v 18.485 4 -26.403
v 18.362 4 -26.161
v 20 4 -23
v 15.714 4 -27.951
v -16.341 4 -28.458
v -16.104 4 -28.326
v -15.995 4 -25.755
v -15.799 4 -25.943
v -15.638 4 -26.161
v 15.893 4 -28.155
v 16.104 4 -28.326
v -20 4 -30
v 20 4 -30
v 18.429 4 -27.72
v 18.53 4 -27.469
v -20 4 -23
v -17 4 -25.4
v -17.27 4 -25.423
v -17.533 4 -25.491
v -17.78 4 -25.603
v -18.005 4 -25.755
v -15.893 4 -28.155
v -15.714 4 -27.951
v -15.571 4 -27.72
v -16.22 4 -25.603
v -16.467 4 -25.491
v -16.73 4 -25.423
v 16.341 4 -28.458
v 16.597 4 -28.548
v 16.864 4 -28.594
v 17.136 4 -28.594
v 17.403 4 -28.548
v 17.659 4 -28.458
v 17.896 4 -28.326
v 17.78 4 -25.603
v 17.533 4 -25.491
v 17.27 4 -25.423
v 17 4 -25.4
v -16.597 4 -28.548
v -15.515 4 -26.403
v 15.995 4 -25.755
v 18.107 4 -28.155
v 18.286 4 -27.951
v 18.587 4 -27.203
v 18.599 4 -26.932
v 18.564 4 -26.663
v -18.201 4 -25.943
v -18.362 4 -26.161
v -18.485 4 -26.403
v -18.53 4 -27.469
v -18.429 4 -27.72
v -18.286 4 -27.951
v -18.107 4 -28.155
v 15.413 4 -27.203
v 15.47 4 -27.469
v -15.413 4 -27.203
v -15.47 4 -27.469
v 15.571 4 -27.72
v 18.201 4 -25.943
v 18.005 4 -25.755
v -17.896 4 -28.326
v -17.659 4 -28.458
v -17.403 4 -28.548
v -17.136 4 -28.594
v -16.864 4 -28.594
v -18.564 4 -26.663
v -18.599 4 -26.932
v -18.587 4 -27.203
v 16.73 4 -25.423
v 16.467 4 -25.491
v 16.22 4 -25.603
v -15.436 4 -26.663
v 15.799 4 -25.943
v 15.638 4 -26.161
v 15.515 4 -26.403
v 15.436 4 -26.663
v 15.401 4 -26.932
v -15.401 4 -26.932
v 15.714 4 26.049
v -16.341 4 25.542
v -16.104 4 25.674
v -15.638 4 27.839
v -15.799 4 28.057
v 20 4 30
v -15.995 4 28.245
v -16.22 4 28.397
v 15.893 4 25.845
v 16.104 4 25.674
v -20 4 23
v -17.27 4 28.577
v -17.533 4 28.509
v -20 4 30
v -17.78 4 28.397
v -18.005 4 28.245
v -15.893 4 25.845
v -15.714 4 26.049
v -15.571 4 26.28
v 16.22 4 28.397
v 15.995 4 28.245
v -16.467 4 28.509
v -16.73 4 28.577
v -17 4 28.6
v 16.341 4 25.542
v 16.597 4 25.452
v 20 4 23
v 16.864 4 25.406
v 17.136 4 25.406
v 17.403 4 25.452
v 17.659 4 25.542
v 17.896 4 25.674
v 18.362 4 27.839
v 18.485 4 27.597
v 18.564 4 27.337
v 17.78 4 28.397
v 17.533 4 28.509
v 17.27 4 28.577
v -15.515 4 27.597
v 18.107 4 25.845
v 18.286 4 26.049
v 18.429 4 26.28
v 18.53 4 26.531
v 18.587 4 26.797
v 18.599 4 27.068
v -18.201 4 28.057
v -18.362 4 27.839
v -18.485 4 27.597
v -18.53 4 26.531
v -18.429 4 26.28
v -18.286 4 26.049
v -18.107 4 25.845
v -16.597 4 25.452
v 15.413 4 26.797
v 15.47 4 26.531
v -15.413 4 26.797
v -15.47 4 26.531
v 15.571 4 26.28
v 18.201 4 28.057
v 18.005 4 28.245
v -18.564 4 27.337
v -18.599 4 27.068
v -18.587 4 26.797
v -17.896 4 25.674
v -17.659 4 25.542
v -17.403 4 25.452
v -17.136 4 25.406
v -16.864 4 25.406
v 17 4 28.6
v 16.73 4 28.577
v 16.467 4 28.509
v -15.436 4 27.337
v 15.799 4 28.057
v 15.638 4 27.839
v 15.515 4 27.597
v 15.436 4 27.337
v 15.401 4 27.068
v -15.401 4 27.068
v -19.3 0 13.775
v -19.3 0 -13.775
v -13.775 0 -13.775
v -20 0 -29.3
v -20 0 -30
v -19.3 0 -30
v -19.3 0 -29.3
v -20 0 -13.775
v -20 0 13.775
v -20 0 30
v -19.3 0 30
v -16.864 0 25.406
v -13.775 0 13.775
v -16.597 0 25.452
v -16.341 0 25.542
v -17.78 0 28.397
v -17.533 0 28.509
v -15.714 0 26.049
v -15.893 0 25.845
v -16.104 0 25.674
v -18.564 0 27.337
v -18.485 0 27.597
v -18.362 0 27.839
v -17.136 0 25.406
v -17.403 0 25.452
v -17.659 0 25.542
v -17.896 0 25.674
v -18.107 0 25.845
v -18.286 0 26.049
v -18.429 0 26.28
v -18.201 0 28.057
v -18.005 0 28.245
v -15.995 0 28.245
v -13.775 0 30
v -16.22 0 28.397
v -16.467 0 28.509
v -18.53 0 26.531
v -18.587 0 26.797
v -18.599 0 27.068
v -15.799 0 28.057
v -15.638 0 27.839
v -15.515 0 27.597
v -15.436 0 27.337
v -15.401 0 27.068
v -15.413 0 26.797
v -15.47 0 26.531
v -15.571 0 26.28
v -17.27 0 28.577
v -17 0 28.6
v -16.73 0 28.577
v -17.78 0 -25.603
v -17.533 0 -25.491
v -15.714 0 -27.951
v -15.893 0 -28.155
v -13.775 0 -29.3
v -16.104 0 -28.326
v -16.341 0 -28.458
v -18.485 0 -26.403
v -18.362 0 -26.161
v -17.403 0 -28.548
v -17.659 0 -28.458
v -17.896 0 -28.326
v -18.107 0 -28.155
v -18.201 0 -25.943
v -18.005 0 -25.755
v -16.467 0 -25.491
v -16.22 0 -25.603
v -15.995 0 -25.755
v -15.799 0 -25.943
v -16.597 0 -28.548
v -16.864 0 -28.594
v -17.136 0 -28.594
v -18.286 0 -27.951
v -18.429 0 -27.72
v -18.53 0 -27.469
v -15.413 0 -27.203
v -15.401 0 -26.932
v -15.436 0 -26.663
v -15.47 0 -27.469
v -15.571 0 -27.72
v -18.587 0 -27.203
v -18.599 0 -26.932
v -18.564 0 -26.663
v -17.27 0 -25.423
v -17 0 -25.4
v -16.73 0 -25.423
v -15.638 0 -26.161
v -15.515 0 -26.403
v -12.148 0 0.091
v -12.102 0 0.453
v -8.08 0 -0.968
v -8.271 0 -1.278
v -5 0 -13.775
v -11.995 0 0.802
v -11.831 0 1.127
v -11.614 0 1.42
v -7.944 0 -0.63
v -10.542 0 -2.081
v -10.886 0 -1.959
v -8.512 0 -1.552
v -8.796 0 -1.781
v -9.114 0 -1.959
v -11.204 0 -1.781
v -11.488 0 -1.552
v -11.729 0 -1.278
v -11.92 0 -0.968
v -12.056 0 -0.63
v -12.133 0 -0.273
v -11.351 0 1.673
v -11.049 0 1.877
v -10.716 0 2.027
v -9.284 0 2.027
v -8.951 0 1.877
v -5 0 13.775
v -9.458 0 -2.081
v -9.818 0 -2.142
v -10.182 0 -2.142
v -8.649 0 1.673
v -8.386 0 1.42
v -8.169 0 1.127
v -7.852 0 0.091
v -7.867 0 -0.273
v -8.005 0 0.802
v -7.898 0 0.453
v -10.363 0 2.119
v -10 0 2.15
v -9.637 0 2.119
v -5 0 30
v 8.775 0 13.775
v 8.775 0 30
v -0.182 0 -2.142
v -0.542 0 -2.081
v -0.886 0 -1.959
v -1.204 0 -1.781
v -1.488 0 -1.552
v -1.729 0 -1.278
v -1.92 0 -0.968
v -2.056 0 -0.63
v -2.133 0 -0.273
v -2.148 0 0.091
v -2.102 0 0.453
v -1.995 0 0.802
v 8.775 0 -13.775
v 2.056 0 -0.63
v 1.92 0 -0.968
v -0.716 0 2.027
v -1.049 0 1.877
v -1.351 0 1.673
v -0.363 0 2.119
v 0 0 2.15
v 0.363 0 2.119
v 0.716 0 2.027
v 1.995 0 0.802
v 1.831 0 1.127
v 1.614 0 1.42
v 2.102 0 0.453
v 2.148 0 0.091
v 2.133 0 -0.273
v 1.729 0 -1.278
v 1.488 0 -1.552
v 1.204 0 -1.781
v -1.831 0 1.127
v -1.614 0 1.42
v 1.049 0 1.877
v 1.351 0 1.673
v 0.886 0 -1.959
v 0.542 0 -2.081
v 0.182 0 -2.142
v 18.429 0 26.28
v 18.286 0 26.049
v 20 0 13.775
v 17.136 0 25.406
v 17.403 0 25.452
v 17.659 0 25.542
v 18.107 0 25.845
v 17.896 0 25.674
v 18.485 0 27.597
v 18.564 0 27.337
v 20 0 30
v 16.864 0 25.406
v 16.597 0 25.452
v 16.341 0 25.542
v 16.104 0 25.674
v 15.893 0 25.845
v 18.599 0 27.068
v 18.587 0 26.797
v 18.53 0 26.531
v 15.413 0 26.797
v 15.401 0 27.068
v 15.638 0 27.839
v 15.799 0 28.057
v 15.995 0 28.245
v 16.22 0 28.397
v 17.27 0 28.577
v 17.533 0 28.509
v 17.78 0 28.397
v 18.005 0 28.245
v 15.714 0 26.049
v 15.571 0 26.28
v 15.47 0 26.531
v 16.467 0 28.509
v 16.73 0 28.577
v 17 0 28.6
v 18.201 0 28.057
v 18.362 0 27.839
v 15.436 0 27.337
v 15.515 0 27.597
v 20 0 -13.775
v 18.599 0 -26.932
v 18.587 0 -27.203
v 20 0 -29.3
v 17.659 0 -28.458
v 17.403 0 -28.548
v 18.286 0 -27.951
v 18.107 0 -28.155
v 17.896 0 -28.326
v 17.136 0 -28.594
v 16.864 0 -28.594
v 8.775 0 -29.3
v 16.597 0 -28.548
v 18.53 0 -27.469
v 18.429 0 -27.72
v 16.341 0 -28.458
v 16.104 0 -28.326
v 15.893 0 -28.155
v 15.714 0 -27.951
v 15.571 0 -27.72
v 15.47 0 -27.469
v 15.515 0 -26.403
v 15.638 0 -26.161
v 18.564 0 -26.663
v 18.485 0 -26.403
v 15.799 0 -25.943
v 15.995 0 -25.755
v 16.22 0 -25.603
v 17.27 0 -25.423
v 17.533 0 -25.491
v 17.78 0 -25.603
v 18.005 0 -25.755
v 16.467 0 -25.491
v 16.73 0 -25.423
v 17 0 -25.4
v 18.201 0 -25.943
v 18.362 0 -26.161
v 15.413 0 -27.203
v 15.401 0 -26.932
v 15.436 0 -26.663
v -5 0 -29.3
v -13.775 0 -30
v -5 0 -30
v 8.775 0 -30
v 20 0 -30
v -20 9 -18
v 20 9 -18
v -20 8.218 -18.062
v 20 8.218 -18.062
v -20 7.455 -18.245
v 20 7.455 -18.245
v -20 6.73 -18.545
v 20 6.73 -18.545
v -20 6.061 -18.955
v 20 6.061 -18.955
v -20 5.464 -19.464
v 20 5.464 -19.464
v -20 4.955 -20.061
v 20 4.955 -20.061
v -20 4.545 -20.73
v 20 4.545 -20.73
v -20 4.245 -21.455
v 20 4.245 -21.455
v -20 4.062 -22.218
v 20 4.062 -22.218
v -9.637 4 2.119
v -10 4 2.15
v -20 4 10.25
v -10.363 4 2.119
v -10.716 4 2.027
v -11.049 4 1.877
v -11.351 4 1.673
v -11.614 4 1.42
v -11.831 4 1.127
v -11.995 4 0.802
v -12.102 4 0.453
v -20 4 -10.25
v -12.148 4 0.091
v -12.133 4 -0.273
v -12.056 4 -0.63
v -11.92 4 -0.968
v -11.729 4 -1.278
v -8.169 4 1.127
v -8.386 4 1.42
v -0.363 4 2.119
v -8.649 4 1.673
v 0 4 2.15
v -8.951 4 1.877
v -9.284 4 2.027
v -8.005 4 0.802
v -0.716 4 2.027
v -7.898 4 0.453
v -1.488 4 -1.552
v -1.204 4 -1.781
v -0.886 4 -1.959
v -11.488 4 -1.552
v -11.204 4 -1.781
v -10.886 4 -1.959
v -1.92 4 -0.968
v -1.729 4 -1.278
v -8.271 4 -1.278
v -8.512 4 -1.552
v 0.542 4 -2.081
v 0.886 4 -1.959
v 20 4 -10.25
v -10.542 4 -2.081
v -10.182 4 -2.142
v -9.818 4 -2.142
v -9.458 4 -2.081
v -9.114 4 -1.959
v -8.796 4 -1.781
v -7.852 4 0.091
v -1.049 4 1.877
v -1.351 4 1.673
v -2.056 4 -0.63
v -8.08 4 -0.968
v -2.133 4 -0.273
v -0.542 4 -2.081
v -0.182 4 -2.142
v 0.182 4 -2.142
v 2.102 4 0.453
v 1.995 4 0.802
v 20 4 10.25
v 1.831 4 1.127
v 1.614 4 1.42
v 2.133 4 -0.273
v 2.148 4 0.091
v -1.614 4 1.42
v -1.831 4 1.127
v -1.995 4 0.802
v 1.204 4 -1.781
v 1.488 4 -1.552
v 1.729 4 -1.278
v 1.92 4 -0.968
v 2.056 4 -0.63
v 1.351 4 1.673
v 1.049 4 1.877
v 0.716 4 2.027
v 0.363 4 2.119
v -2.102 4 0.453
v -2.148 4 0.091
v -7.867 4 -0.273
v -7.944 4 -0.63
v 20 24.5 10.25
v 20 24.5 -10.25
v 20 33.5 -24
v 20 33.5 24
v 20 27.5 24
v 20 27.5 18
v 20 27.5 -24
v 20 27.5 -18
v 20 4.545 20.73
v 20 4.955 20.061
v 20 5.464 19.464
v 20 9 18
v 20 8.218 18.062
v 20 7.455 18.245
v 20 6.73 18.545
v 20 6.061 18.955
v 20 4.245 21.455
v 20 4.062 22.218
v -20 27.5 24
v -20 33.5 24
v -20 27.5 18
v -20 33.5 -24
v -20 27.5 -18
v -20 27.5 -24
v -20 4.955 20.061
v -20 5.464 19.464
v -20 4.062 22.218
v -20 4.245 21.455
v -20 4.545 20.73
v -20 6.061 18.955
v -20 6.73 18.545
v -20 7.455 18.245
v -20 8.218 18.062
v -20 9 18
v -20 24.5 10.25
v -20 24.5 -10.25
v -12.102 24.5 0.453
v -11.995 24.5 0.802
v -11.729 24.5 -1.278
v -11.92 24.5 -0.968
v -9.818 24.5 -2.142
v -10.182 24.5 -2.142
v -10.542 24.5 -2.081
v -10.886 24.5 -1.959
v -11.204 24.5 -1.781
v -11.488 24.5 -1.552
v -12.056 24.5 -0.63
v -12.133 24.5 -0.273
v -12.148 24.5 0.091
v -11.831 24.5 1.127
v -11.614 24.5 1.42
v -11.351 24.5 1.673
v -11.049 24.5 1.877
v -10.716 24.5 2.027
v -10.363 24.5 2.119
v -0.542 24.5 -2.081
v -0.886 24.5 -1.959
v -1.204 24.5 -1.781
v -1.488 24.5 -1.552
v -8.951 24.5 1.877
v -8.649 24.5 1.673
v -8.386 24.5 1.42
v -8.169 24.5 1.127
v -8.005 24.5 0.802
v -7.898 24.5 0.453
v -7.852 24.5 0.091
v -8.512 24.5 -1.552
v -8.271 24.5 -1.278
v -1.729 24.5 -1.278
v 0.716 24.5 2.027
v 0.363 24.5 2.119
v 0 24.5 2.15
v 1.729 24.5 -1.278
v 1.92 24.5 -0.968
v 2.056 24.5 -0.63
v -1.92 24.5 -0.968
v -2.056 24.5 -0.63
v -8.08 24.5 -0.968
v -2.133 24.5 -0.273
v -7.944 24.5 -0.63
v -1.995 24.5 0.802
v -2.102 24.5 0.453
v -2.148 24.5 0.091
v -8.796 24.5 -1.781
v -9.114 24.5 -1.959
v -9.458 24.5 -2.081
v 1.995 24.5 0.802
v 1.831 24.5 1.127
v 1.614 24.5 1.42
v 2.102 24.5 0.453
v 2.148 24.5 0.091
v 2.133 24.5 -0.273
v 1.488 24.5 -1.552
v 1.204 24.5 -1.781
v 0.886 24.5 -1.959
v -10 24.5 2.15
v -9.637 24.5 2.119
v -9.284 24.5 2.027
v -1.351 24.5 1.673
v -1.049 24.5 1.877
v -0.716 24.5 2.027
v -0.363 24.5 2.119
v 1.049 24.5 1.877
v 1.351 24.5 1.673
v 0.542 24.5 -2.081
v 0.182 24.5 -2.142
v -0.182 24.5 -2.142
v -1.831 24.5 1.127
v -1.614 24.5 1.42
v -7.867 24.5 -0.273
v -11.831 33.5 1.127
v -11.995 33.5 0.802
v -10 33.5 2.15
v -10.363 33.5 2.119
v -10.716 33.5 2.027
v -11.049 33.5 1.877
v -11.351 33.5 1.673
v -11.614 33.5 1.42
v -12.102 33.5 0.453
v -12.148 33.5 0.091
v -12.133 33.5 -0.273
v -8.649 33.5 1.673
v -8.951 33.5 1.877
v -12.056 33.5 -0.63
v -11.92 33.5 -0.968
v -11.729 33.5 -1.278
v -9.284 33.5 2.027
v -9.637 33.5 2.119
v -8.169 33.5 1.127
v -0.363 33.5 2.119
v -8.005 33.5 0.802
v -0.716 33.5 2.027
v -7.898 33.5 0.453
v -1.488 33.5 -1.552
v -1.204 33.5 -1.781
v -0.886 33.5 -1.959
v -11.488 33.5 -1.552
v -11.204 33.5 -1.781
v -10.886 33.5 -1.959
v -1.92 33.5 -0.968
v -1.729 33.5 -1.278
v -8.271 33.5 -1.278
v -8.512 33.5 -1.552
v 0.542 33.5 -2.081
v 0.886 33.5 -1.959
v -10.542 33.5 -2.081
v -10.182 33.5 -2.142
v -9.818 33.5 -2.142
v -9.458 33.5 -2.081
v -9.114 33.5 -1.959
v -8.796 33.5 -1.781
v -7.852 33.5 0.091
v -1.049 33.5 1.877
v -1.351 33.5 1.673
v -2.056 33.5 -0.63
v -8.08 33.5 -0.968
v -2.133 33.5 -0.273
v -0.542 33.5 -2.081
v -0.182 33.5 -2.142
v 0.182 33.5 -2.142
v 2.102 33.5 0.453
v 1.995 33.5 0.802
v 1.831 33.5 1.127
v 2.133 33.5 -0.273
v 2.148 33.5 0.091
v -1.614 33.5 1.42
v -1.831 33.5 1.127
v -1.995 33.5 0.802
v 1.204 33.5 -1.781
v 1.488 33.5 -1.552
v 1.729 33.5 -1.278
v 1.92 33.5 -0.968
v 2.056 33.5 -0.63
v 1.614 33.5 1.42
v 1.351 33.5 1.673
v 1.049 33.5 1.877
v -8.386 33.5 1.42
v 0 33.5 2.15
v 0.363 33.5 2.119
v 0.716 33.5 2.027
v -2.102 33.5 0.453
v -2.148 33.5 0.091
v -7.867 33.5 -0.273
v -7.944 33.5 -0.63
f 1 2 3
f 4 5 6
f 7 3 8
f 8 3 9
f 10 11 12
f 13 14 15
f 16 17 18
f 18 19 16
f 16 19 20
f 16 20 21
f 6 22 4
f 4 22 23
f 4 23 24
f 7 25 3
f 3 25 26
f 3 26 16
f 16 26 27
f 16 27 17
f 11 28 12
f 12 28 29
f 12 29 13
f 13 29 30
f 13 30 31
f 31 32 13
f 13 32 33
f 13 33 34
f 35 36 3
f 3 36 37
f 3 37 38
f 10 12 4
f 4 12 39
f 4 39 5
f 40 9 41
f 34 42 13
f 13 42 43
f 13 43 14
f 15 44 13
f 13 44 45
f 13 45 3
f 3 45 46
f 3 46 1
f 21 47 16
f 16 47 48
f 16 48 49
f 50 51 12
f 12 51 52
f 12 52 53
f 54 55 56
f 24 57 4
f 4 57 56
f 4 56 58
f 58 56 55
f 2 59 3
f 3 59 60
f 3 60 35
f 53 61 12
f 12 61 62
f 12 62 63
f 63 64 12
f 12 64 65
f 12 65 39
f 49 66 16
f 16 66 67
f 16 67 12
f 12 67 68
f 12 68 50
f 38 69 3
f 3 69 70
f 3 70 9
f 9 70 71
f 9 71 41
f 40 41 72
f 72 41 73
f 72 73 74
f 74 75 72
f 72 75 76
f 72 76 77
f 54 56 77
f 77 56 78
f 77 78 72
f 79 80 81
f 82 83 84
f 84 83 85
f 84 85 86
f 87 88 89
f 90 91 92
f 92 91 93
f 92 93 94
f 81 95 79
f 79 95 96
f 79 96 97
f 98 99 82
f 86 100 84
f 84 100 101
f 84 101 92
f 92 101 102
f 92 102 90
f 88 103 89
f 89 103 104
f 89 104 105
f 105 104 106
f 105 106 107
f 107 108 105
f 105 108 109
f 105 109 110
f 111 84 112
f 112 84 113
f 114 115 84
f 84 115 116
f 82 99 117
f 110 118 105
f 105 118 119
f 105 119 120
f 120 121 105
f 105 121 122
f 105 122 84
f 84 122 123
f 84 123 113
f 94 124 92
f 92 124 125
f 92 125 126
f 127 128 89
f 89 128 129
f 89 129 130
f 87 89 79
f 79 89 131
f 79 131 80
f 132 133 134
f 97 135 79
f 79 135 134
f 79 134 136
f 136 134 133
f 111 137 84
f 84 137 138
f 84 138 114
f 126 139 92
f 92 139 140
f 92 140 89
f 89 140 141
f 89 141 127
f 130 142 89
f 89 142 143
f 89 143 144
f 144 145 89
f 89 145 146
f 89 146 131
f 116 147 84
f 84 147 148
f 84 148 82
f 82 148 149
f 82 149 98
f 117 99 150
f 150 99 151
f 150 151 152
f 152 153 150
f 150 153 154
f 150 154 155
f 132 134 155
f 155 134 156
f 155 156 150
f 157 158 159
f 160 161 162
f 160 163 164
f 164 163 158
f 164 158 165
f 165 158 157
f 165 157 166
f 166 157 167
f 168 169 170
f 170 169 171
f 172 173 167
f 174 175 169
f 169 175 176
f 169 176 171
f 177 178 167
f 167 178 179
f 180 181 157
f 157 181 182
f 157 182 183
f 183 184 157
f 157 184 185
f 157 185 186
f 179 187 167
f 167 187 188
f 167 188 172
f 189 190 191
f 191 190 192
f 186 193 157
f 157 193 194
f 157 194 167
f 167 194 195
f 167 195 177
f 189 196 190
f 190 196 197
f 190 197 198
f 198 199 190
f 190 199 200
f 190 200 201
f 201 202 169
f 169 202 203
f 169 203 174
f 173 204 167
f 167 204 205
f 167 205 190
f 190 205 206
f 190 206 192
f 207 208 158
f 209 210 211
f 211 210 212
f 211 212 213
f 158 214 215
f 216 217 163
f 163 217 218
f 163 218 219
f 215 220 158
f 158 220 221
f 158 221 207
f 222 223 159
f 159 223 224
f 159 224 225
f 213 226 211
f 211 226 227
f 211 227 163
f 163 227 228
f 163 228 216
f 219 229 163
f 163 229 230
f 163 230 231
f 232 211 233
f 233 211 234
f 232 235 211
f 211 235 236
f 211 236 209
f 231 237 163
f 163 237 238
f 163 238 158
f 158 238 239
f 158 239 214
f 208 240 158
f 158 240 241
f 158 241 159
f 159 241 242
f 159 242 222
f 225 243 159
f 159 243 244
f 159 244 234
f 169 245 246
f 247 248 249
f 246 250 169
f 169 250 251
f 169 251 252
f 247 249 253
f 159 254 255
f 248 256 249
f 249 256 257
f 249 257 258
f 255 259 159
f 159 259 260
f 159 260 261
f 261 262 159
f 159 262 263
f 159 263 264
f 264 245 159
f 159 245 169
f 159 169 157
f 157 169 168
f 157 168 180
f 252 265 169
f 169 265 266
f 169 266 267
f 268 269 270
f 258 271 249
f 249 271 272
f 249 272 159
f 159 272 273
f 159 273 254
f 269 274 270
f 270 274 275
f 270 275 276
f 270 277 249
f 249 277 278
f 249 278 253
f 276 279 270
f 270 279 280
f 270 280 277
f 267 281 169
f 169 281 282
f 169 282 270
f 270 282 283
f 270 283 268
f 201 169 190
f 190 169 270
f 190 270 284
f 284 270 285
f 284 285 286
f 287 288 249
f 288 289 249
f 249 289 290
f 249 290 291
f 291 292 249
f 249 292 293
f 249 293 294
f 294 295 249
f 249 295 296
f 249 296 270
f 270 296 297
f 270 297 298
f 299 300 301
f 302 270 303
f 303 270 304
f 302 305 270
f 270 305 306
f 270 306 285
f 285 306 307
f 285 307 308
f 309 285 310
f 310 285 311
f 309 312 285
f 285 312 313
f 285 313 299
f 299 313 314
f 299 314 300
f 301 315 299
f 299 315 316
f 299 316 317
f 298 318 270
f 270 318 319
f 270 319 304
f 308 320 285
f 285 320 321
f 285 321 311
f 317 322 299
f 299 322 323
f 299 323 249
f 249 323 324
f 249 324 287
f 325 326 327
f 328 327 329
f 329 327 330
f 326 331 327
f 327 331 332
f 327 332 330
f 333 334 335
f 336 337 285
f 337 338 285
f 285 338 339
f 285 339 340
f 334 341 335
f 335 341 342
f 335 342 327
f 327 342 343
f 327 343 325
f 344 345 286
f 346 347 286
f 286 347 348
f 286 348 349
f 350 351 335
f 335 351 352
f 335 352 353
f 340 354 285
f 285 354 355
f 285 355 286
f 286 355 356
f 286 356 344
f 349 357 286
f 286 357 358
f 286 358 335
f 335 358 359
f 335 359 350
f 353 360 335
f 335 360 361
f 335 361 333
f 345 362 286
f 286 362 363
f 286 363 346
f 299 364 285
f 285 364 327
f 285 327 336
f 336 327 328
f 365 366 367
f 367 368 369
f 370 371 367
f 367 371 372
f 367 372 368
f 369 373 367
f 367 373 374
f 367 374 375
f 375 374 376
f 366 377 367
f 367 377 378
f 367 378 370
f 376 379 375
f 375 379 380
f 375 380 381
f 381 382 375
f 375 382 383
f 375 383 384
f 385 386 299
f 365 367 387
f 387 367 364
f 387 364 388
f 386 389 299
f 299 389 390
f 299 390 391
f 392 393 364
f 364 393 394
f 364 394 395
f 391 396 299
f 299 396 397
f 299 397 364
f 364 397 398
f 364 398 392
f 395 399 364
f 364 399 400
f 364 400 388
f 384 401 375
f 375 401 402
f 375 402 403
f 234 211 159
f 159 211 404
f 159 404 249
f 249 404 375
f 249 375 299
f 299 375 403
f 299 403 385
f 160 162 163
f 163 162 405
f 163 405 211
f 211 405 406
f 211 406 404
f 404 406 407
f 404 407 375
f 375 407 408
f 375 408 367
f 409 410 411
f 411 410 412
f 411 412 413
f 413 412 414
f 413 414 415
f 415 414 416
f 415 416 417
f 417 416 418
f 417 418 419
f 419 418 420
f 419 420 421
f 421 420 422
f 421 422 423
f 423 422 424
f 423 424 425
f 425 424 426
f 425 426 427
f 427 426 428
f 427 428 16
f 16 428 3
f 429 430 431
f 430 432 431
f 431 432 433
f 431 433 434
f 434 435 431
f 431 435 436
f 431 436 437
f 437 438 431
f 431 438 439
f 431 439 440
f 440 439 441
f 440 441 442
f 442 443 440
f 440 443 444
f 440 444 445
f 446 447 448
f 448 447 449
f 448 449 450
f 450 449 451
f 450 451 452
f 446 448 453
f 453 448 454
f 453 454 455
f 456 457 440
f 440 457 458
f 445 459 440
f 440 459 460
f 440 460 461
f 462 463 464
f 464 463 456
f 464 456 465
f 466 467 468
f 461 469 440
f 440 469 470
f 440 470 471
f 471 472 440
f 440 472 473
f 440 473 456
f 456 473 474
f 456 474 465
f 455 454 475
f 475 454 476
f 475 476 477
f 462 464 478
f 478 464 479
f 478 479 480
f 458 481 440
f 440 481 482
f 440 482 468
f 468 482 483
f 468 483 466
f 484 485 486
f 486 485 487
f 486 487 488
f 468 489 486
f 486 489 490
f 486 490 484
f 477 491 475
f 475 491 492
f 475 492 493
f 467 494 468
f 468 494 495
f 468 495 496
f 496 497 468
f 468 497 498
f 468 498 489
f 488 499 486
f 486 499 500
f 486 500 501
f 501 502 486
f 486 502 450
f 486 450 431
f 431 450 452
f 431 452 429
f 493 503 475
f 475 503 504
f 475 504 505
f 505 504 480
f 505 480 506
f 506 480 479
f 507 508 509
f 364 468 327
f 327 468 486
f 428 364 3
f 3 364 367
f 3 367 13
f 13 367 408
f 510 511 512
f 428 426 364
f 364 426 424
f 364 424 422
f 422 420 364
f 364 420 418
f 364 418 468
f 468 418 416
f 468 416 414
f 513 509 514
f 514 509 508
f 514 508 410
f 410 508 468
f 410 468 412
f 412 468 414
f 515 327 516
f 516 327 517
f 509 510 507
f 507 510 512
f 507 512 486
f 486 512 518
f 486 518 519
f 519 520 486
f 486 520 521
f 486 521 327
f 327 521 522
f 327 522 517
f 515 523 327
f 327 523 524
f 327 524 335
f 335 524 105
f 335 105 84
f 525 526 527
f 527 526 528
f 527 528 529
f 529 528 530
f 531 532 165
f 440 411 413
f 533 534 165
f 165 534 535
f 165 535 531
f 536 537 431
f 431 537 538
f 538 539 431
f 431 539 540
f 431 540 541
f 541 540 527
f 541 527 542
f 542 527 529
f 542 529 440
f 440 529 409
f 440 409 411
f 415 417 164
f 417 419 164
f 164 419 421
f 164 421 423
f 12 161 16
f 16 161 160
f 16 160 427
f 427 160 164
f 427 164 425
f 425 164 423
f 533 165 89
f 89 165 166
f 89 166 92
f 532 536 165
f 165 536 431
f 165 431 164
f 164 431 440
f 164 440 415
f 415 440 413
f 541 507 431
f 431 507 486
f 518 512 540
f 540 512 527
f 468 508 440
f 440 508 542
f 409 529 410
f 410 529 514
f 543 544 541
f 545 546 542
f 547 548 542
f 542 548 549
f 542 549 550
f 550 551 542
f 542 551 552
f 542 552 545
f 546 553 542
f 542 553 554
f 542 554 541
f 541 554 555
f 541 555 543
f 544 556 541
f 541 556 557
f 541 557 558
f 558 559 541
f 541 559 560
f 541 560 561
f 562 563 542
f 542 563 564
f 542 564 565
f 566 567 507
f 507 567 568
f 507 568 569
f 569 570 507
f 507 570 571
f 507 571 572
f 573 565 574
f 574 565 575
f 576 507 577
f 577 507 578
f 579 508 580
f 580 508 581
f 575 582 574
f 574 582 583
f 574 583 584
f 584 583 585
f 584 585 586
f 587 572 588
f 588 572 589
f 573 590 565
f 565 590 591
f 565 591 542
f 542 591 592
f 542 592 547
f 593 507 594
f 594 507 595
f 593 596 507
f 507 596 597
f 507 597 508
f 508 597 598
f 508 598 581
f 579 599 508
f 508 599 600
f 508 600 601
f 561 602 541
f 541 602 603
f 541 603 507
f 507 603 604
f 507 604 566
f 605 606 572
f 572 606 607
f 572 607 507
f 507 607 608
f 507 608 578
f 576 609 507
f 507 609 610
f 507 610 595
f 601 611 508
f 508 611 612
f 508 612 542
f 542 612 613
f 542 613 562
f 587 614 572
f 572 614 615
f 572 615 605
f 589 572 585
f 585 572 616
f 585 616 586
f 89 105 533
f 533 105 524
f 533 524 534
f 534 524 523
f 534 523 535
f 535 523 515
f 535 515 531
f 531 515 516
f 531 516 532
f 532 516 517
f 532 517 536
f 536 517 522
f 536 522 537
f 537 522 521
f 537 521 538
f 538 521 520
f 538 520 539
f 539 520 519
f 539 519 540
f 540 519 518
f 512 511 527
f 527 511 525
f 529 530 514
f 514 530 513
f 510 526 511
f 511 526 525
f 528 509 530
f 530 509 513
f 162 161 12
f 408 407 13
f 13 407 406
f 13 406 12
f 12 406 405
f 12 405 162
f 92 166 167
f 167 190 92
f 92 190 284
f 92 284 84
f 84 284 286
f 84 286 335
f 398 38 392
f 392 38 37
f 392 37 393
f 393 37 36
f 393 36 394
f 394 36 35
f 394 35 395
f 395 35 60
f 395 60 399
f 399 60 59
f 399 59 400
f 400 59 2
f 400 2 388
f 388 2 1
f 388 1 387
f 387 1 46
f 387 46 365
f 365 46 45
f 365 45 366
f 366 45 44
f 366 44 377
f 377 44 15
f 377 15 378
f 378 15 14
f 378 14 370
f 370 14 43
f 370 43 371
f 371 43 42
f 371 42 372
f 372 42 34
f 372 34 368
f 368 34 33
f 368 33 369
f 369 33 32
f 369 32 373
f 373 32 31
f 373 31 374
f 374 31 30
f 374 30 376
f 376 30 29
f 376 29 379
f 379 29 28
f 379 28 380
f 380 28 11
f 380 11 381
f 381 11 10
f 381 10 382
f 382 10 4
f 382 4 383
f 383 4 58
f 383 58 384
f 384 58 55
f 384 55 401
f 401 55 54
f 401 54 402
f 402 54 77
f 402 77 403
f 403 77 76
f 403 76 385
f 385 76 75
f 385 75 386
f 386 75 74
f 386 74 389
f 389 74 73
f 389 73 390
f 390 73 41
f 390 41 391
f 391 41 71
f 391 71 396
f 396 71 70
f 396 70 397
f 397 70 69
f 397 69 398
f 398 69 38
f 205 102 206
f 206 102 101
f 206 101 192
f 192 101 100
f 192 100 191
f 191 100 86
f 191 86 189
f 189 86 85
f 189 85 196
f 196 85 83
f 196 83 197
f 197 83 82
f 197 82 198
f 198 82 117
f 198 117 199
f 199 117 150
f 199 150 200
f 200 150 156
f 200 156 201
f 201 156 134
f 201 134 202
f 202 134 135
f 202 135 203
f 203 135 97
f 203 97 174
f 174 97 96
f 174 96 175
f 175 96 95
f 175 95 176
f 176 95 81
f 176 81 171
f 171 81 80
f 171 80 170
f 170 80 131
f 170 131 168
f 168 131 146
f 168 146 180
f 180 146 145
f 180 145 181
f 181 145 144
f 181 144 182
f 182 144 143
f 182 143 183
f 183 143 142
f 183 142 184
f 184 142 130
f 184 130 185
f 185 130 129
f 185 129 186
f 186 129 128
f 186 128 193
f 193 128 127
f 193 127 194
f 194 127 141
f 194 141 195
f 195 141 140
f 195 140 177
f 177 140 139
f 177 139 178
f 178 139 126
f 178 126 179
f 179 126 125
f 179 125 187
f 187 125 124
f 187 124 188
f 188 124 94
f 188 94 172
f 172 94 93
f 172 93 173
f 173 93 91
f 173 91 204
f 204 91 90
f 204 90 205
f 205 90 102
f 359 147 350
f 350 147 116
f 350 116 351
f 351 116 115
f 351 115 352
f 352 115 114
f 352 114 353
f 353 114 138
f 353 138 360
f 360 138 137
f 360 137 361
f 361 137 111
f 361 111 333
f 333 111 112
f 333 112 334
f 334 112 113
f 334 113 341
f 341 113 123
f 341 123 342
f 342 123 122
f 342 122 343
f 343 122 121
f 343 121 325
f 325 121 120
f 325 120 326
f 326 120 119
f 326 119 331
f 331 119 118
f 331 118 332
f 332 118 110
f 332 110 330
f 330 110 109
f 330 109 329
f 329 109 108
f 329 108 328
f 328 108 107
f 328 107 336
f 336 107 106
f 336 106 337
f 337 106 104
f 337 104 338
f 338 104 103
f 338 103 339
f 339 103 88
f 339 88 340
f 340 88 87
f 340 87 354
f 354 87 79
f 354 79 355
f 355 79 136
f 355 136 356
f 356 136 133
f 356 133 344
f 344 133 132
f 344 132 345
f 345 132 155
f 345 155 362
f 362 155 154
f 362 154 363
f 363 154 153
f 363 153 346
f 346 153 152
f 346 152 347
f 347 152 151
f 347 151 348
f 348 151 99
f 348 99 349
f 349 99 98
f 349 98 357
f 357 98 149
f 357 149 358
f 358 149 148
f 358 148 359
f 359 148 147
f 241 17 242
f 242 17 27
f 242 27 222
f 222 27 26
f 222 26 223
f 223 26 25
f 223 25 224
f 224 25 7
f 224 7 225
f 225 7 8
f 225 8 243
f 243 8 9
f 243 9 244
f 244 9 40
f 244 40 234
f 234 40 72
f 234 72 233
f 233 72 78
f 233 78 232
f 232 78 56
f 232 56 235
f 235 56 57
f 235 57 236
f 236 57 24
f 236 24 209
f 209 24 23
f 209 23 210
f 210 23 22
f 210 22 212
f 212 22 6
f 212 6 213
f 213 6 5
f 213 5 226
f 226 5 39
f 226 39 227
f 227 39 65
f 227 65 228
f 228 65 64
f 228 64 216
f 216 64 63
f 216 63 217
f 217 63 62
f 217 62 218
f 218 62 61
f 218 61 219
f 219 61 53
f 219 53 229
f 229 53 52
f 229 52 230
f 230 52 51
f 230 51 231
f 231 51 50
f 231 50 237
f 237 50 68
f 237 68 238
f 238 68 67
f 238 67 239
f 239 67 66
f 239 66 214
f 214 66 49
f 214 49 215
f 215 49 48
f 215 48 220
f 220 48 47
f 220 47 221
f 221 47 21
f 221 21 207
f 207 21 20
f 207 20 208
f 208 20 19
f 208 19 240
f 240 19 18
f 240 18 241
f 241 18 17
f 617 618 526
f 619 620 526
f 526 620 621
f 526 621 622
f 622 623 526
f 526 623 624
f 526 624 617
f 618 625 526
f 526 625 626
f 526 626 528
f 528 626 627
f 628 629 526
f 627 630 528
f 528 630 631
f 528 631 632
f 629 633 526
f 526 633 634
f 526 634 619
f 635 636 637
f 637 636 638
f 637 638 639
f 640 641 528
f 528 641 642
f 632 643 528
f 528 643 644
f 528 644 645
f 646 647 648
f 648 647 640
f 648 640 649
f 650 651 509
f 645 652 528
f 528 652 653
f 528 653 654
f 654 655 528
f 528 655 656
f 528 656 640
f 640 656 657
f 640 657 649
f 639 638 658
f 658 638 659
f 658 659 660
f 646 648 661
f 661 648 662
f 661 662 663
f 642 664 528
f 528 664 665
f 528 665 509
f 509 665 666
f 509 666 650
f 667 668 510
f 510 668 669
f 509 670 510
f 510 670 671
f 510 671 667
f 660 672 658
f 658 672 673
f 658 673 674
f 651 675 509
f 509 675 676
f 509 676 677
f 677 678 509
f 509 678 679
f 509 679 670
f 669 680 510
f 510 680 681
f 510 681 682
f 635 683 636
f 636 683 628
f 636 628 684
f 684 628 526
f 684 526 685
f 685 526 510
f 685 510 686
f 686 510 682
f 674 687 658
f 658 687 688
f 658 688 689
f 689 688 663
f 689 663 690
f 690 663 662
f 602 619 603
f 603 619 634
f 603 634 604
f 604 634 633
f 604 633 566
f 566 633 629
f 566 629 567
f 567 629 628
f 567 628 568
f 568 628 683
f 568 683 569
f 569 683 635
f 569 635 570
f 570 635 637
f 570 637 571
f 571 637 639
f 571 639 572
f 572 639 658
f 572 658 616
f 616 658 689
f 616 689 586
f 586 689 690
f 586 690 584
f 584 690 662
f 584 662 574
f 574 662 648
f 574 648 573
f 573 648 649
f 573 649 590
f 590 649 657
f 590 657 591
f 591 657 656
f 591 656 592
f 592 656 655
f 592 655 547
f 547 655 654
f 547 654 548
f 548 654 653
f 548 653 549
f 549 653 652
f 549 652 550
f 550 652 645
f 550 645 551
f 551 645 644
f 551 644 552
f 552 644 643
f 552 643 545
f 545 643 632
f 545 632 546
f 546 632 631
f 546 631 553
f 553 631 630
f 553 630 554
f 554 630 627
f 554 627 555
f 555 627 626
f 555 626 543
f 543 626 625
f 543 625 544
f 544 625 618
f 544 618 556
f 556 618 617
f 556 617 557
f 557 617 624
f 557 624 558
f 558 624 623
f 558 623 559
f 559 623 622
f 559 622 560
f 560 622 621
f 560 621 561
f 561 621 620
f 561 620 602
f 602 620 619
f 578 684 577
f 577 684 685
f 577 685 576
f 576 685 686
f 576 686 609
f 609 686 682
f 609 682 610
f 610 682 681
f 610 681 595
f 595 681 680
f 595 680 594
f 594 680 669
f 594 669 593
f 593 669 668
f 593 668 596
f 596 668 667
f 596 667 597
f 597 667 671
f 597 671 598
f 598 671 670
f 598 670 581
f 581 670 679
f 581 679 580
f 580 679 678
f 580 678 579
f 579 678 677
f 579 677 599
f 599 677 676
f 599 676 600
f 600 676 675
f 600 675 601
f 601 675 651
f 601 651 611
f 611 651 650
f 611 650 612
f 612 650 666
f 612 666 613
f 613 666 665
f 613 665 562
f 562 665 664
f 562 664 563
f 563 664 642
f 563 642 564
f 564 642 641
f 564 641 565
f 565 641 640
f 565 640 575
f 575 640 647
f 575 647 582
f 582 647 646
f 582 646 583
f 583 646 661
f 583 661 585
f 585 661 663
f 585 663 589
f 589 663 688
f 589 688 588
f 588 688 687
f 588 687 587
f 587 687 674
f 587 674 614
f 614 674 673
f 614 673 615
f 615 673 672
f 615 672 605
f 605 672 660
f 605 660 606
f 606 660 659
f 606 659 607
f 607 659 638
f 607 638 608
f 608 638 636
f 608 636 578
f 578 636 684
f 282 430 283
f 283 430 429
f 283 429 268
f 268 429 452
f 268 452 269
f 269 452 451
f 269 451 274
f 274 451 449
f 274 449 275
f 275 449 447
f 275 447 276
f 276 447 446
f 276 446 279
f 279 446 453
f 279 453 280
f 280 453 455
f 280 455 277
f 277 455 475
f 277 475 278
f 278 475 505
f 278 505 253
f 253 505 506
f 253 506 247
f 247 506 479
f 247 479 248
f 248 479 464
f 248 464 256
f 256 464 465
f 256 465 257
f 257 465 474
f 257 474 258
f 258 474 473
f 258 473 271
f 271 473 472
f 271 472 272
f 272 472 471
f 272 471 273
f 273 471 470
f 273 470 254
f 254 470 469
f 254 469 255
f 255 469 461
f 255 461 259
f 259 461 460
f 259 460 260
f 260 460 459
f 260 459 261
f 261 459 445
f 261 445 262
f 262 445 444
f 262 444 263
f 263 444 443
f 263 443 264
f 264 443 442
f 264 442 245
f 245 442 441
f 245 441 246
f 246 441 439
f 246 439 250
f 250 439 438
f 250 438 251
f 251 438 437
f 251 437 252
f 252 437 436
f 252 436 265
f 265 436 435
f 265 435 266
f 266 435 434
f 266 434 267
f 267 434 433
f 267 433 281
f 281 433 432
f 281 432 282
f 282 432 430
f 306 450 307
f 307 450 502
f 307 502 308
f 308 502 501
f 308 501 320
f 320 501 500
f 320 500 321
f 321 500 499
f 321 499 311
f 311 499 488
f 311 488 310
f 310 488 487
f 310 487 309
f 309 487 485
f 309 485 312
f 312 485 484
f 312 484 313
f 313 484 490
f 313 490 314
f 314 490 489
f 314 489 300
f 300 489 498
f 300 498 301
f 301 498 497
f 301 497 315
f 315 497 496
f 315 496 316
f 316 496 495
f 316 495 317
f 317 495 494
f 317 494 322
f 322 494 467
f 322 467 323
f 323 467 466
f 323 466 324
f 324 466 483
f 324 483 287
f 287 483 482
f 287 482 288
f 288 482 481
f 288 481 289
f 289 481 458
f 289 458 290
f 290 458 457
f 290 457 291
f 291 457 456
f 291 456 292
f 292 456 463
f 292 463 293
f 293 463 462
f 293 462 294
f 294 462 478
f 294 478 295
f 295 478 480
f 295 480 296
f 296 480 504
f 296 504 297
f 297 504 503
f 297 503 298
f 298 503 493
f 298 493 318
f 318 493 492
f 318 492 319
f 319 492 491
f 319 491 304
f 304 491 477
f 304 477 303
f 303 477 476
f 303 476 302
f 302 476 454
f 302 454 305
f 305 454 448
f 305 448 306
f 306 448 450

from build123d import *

# Parameters (mm, degrees)
SKETCH_1_W          = 40
SKETCH_1_H          = 48
SKETCH_1_R          = 1.75
EXTRUDE_1_DEPTH     = 4
SKETCH_2_W          = 40
SKETCH_2_H          = 7.75
EXTRUDE_5_DEPTH     = 20.5
SKETCH_4_W          = 40
SKETCH_4_H          = 36
EXTRUDE_6_DEPTH     = 3
FILLET_4_R          = 5
FILLET_11_R         = 5
SKETCH_8_W          = 40
SKETCH_8_H          = 48
EXTRUDE_8_DEPTH     = 4
SKETCH_9_W          = 40
SKETCH_9_H          = 60
EXTRUDE_9_DEPTH     = 4
SKETCH_10_R         = 1.6
CUT_EXTRUDE_1_DEPTH = 46.345892868
SKETCH_12_W         = 40
SKETCH_12_H         = 48
EXTRUDE_11_DEPTH    = 2
SKETCH_13_R         = 2.15
CUT_EXTRUDE_2_DEPTH = 50.216359069


with BuildPart() as part:
    # 草图1 → 凸台-拉伸1 (new body)
    with BuildSketch(Plane(origin=(0, 0, 0), x_dir=(1, 0, 0), z_dir=(0, 1, 0))):
        Rectangle(SKETCH_1_W, SKETCH_1_H)
        with Locations(Location((11.45, 14, 0), (0, 0, 270))):
            Circle(SKETCH_1_R, mode=Mode.SUBTRACT)
        with Locations(Location((-11.45, 14, 0), (0, 0, 270))):
            Circle(SKETCH_1_R, mode=Mode.SUBTRACT)
        with Locations(Location((-11.45, -14, 0), (0, 0, 270))):
            Circle(SKETCH_1_R, mode=Mode.SUBTRACT)
        with Locations(Location((11.45, -14, 0), (0, 0, 270))):
            Circle(SKETCH_1_R, mode=Mode.SUBTRACT)
        with BuildLine():
            Line((-2.45, -15.5), (-2.45, 15.5))
            ThreePointArc((-2.45, 15.5), (0, 17.95), (2.45, 15.5))
            Line((2.45, 15.5), (2.45, -15.5))
            ThreePointArc((2.45, -15.5), (0, -17.95), (-2.45, -15.5))
        make_face(mode=Mode.SUBTRACT)
    extrude(amount=EXTRUDE_1_DEPTH)

    # 草图2 → 凸台-拉伸5 (add)
    with BuildSketch(Plane(origin=(0, 4, 0), x_dir=(1, 0, 0), z_dir=(0, 1, 0))):
        with Locations((0, -14.125)):
            Rectangle(SKETCH_2_W, SKETCH_2_H)
        with Locations((0, 14.125)):
            Rectangle(SKETCH_2_W, SKETCH_2_H)
    extrude(amount=EXTRUDE_5_DEPTH)

    # 草图4 → 凸台-拉伸6 (add)
    with BuildSketch(Plane(origin=(0, 24.5, 0), x_dir=(1, 0, 0), z_dir=(0, 1, 0))):
        Rectangle(SKETCH_4_W, SKETCH_4_H)
    extrude(amount=EXTRUDE_6_DEPTH)

    # 圆角4
    fillet_4_edges = [part.edges().sort_by_distance(p)[0] for p in [
        (0, 4, -18),
    ]]
    fillet(fillet_4_edges, radius=FILLET_4_R)

    # 圆角11
    fillet_11_edges = [part.edges().sort_by_distance(p)[0] for p in [
        (0, 4, 18),
    ]]
    fillet(fillet_11_edges, radius=FILLET_11_R)

    # 草图8 → 凸台-拉伸8 (add)
    with BuildSketch(Plane(origin=(0, 27.5, 0), x_dir=(1, 0, 0), z_dir=(0, 1, 0))):
        Rectangle(SKETCH_8_W, SKETCH_8_H)
    extrude(amount=EXTRUDE_8_DEPTH)

    # 草图9 → 凸台-拉伸9 (add)
    with BuildSketch(Plane.XZ):
        Rectangle(SKETCH_9_W, SKETCH_9_H)
    extrude(amount=-EXTRUDE_9_DEPTH)

    # 草图10 → 切除-拉伸1 (cut, through all)
    with BuildSketch(Plane(origin=(0, 4, 0), x_dir=(1, 0, 0), z_dir=(0, 1, 0))):
        with Locations(Location((17, 27, 0), (0, 0, 270))):
            Circle(SKETCH_10_R)
        with Locations(Location((-17, -27, 0), (0, 0, 270))):
            Circle(SKETCH_10_R)
        with Locations(Location((17, -27, 0), (0, 0, 270))):
            Circle(SKETCH_10_R)
        with Locations(Location((-17, 27, 0), (0, 0, 270))):
            Circle(SKETCH_10_R)
    extrude(amount=-CUT_EXTRUDE_1_DEPTH, mode=Mode.SUBTRACT)

    # 草图12 → 凸台-拉伸11 (add)
    with BuildSketch(Plane(origin=(0, 31.5, 0), x_dir=(1, 0, 0), z_dir=(0, 1, 0))):
        Rectangle(SKETCH_12_W, SKETCH_12_H)
    extrude(amount=EXTRUDE_11_DEPTH)

    # 草图13 → 切除-拉伸2 (cut, through all)
    with BuildSketch(Plane(origin=(0, 33.5, 0), x_dir=(1, 0, 0), z_dir=(0, 1, 0))):
        with Locations(Location((-10, 0, 0), (0, 0, 270))):
            Circle(SKETCH_13_R)
        with Locations(Location((0, 0, 0), (0, 0, 270))):
            Circle(SKETCH_13_R)
    extrude(amount=-CUT_EXTRUDE_2_DEPTH, mode=Mode.SUBTRACT)


solid = part.part
